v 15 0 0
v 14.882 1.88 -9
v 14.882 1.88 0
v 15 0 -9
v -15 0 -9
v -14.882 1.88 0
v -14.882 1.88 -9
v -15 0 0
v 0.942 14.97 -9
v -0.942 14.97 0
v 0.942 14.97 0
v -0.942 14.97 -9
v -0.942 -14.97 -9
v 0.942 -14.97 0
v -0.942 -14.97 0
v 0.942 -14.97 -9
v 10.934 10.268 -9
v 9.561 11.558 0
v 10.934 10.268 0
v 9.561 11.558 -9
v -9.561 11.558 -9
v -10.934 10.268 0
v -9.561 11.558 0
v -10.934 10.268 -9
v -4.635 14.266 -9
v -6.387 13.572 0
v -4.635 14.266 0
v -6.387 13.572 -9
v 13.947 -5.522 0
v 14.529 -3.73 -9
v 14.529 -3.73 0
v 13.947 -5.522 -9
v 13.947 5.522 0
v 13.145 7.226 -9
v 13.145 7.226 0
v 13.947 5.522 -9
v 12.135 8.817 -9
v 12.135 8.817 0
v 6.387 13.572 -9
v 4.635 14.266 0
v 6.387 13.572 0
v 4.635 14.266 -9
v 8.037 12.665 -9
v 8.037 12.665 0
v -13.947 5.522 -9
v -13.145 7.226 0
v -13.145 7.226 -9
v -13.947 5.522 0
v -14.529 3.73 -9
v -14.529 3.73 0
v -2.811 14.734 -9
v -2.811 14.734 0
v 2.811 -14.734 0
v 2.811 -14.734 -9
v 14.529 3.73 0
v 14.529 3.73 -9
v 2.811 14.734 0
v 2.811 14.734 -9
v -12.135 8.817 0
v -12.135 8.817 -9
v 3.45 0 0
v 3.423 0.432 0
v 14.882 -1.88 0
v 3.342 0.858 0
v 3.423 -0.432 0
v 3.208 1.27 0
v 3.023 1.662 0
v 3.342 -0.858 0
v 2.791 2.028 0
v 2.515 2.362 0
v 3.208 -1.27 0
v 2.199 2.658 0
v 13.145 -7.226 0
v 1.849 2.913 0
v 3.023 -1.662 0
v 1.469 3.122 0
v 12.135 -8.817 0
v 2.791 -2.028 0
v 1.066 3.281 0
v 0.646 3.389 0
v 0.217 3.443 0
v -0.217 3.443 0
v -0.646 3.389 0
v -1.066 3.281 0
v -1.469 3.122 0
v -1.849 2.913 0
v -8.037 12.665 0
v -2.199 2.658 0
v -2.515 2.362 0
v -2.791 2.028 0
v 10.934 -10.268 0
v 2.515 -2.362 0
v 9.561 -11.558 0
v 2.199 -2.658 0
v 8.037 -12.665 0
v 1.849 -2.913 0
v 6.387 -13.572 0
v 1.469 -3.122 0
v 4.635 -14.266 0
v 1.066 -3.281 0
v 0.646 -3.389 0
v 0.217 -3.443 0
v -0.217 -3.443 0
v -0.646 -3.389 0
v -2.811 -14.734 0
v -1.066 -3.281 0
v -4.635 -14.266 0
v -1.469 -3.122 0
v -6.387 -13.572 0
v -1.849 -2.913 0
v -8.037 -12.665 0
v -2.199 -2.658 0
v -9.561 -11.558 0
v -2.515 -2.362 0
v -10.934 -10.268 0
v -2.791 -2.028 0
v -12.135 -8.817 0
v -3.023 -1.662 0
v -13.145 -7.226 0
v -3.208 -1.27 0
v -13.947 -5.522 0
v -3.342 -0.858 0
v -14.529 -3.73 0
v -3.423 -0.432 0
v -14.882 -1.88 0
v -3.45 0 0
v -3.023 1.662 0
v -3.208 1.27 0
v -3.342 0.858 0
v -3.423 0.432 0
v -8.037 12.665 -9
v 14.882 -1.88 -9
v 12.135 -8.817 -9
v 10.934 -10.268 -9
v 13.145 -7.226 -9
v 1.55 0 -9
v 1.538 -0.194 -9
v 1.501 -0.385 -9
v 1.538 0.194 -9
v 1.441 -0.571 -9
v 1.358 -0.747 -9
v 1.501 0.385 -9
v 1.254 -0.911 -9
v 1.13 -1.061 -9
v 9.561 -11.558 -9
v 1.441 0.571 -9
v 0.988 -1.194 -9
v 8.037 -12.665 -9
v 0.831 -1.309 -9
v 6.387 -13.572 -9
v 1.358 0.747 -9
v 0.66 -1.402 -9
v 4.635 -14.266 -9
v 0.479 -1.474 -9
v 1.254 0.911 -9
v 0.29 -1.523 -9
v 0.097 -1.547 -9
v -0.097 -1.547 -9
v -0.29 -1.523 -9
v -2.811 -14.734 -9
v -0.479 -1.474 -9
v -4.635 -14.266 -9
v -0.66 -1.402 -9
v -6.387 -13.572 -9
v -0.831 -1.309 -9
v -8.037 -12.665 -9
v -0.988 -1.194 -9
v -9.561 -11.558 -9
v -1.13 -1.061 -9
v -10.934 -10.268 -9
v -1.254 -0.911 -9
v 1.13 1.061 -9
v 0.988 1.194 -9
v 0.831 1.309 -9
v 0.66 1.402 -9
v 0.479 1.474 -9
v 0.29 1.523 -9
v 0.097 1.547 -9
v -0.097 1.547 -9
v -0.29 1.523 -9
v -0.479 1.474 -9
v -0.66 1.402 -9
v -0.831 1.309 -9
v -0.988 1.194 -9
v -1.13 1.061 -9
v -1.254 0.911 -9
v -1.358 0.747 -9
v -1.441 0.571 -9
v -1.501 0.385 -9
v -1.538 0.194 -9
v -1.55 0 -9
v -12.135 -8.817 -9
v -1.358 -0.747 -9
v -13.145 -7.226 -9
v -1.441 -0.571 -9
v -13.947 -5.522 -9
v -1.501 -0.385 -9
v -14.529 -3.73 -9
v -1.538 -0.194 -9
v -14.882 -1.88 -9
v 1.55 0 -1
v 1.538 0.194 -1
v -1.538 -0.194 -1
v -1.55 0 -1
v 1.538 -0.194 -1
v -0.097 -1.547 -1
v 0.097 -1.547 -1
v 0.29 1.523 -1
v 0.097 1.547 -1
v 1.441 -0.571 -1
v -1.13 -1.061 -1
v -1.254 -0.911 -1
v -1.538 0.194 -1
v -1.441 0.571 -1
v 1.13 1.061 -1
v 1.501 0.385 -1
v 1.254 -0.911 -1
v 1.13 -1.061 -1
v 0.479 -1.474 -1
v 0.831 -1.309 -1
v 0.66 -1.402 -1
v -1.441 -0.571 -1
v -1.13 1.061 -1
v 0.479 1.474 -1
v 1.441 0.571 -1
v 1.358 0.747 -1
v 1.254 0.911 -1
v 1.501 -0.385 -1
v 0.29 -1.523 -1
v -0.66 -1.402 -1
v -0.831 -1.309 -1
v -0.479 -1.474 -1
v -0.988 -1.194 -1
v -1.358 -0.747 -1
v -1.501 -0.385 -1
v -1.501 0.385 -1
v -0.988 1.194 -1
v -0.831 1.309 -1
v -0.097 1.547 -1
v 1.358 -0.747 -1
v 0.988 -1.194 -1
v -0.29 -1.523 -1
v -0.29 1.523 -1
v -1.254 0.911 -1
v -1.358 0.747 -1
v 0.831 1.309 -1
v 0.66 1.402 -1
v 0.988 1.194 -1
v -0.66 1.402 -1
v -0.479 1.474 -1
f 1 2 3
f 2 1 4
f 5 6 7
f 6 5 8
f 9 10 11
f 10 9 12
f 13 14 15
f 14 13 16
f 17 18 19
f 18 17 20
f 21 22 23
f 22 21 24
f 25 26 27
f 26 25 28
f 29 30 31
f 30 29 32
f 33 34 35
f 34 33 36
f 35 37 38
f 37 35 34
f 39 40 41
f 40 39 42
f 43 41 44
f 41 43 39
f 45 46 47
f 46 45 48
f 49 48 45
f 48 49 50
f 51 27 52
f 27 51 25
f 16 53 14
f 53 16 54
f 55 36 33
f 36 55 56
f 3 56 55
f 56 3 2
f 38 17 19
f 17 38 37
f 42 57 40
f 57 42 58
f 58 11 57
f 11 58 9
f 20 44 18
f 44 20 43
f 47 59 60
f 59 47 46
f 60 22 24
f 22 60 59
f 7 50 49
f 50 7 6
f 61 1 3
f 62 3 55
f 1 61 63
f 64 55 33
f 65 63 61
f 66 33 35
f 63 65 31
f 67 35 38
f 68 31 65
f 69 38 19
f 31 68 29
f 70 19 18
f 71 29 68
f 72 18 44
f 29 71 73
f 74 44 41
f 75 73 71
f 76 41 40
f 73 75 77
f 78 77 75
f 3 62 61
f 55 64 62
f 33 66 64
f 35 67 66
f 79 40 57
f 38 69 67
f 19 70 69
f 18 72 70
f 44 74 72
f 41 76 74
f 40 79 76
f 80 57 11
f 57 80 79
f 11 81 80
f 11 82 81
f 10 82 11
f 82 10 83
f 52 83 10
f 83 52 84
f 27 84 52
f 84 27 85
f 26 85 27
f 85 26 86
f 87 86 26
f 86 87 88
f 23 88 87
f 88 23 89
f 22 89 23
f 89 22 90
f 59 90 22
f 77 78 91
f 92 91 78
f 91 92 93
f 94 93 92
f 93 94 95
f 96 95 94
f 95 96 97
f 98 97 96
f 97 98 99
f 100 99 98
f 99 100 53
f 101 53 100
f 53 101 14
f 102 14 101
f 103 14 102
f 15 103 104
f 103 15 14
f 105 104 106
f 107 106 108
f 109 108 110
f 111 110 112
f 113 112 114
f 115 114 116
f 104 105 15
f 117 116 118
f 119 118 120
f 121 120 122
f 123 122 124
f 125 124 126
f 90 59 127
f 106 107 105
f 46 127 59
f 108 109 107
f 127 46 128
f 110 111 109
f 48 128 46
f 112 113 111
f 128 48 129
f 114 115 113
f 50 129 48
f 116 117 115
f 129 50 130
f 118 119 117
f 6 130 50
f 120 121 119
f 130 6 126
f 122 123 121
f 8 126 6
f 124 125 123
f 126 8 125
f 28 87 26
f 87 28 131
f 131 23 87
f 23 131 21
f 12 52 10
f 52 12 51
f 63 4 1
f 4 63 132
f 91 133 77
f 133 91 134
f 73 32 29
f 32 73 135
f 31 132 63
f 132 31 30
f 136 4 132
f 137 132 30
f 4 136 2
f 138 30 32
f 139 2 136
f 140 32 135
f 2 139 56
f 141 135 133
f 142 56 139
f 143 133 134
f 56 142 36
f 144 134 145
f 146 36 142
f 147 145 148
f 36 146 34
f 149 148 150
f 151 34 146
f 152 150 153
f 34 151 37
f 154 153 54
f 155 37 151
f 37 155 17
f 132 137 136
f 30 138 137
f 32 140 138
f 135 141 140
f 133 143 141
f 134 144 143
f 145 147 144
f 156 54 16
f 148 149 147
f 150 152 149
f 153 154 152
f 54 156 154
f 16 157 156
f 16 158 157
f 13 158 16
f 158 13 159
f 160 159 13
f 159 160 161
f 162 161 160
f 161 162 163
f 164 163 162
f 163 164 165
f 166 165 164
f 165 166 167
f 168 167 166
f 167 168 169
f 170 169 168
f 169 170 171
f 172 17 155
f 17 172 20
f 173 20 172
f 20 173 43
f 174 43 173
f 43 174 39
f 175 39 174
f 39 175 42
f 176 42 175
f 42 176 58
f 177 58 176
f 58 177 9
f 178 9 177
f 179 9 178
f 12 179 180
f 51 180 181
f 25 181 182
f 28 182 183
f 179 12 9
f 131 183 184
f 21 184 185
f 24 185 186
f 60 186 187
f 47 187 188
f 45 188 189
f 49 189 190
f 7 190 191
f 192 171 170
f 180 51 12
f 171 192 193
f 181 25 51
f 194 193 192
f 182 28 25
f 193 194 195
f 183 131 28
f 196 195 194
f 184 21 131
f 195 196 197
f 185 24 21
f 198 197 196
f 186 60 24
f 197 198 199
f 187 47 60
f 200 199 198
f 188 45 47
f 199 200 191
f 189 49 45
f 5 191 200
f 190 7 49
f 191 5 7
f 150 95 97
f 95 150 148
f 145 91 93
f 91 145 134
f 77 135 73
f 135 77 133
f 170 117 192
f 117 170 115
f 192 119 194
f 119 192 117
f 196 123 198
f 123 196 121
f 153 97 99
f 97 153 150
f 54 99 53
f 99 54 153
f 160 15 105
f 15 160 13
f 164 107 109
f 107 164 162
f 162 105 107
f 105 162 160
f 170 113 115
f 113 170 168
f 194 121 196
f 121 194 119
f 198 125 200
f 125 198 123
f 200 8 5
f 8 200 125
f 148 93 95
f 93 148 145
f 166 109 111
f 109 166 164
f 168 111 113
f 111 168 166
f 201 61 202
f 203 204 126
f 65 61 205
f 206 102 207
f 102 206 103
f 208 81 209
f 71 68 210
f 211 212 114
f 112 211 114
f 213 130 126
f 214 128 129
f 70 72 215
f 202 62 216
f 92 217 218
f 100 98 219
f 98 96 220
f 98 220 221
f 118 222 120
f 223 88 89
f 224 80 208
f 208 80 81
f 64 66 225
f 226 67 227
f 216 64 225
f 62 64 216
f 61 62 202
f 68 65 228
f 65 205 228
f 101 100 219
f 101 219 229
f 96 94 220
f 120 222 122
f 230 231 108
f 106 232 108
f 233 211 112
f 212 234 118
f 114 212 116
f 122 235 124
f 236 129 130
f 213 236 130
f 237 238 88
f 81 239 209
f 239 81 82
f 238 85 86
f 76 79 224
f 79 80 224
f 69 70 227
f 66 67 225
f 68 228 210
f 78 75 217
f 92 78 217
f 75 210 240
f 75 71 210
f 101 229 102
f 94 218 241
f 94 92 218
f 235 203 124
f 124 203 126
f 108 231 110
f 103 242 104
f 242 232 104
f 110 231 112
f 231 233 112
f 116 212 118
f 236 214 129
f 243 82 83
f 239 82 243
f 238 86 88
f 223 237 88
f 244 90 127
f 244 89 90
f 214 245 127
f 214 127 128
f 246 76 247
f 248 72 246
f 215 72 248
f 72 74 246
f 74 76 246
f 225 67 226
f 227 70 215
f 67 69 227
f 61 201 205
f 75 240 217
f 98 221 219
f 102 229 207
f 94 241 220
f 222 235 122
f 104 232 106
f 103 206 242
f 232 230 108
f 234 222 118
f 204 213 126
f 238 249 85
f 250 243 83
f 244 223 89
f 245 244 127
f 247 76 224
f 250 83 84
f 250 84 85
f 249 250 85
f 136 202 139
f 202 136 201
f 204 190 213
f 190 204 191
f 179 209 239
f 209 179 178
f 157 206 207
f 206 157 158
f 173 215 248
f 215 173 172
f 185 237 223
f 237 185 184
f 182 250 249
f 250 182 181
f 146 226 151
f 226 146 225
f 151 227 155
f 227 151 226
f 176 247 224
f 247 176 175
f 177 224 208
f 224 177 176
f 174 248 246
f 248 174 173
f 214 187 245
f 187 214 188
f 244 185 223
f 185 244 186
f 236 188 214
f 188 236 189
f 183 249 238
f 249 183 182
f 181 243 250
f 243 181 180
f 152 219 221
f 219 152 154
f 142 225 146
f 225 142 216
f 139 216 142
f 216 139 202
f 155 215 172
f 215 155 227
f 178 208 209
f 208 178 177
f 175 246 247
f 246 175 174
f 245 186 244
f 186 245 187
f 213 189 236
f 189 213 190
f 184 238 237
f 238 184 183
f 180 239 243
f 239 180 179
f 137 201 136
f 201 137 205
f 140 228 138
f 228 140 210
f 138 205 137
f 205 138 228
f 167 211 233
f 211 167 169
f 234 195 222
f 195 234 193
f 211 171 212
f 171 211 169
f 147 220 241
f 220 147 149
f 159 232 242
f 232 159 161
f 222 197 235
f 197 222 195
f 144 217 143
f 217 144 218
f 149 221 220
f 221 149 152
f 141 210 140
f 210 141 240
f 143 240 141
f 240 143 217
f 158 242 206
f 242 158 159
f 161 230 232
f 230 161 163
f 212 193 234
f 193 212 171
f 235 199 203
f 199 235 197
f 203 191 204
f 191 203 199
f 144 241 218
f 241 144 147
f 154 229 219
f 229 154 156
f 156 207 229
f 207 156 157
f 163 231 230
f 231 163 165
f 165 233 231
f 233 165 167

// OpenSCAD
$fn = 50;


difference() {
	union() {
		translate(v = [0, 0, -9.0000000000]) {
			cylinder(h = 9, r = 15.0000000000);
		}
		translate(v = [0, 0, -9.0000000000]) {
			cylinder(h = 9, r = 2.8750000000);
		}
	}
	union() {
		translate(v = [0, 0, 0]) {
			rotate(a = [0, 0, 0]) {
				difference() {
					union() {
						#translate(v = [0, 0, -9.0000000000]) {
							cylinder(h = 9, r = 1.2500000000);
						}
						#translate(v = [0, 0, -1.0000000000]) {
							cylinder(h = 1.0000000000, r1 = 1.5500000000, r2 = 3.4500000000);
						}
						#translate(v = [0, 0, -9.0000000000]) {
							cylinder(h = 9, r = 1.5500000000);
						}
						#translate(v = [0, 0, -9.0000000000]) {
							cylinder(h = 9, r = 1.2500000000);
						}
					}
					union();
				}
			}
		}
	}
}
